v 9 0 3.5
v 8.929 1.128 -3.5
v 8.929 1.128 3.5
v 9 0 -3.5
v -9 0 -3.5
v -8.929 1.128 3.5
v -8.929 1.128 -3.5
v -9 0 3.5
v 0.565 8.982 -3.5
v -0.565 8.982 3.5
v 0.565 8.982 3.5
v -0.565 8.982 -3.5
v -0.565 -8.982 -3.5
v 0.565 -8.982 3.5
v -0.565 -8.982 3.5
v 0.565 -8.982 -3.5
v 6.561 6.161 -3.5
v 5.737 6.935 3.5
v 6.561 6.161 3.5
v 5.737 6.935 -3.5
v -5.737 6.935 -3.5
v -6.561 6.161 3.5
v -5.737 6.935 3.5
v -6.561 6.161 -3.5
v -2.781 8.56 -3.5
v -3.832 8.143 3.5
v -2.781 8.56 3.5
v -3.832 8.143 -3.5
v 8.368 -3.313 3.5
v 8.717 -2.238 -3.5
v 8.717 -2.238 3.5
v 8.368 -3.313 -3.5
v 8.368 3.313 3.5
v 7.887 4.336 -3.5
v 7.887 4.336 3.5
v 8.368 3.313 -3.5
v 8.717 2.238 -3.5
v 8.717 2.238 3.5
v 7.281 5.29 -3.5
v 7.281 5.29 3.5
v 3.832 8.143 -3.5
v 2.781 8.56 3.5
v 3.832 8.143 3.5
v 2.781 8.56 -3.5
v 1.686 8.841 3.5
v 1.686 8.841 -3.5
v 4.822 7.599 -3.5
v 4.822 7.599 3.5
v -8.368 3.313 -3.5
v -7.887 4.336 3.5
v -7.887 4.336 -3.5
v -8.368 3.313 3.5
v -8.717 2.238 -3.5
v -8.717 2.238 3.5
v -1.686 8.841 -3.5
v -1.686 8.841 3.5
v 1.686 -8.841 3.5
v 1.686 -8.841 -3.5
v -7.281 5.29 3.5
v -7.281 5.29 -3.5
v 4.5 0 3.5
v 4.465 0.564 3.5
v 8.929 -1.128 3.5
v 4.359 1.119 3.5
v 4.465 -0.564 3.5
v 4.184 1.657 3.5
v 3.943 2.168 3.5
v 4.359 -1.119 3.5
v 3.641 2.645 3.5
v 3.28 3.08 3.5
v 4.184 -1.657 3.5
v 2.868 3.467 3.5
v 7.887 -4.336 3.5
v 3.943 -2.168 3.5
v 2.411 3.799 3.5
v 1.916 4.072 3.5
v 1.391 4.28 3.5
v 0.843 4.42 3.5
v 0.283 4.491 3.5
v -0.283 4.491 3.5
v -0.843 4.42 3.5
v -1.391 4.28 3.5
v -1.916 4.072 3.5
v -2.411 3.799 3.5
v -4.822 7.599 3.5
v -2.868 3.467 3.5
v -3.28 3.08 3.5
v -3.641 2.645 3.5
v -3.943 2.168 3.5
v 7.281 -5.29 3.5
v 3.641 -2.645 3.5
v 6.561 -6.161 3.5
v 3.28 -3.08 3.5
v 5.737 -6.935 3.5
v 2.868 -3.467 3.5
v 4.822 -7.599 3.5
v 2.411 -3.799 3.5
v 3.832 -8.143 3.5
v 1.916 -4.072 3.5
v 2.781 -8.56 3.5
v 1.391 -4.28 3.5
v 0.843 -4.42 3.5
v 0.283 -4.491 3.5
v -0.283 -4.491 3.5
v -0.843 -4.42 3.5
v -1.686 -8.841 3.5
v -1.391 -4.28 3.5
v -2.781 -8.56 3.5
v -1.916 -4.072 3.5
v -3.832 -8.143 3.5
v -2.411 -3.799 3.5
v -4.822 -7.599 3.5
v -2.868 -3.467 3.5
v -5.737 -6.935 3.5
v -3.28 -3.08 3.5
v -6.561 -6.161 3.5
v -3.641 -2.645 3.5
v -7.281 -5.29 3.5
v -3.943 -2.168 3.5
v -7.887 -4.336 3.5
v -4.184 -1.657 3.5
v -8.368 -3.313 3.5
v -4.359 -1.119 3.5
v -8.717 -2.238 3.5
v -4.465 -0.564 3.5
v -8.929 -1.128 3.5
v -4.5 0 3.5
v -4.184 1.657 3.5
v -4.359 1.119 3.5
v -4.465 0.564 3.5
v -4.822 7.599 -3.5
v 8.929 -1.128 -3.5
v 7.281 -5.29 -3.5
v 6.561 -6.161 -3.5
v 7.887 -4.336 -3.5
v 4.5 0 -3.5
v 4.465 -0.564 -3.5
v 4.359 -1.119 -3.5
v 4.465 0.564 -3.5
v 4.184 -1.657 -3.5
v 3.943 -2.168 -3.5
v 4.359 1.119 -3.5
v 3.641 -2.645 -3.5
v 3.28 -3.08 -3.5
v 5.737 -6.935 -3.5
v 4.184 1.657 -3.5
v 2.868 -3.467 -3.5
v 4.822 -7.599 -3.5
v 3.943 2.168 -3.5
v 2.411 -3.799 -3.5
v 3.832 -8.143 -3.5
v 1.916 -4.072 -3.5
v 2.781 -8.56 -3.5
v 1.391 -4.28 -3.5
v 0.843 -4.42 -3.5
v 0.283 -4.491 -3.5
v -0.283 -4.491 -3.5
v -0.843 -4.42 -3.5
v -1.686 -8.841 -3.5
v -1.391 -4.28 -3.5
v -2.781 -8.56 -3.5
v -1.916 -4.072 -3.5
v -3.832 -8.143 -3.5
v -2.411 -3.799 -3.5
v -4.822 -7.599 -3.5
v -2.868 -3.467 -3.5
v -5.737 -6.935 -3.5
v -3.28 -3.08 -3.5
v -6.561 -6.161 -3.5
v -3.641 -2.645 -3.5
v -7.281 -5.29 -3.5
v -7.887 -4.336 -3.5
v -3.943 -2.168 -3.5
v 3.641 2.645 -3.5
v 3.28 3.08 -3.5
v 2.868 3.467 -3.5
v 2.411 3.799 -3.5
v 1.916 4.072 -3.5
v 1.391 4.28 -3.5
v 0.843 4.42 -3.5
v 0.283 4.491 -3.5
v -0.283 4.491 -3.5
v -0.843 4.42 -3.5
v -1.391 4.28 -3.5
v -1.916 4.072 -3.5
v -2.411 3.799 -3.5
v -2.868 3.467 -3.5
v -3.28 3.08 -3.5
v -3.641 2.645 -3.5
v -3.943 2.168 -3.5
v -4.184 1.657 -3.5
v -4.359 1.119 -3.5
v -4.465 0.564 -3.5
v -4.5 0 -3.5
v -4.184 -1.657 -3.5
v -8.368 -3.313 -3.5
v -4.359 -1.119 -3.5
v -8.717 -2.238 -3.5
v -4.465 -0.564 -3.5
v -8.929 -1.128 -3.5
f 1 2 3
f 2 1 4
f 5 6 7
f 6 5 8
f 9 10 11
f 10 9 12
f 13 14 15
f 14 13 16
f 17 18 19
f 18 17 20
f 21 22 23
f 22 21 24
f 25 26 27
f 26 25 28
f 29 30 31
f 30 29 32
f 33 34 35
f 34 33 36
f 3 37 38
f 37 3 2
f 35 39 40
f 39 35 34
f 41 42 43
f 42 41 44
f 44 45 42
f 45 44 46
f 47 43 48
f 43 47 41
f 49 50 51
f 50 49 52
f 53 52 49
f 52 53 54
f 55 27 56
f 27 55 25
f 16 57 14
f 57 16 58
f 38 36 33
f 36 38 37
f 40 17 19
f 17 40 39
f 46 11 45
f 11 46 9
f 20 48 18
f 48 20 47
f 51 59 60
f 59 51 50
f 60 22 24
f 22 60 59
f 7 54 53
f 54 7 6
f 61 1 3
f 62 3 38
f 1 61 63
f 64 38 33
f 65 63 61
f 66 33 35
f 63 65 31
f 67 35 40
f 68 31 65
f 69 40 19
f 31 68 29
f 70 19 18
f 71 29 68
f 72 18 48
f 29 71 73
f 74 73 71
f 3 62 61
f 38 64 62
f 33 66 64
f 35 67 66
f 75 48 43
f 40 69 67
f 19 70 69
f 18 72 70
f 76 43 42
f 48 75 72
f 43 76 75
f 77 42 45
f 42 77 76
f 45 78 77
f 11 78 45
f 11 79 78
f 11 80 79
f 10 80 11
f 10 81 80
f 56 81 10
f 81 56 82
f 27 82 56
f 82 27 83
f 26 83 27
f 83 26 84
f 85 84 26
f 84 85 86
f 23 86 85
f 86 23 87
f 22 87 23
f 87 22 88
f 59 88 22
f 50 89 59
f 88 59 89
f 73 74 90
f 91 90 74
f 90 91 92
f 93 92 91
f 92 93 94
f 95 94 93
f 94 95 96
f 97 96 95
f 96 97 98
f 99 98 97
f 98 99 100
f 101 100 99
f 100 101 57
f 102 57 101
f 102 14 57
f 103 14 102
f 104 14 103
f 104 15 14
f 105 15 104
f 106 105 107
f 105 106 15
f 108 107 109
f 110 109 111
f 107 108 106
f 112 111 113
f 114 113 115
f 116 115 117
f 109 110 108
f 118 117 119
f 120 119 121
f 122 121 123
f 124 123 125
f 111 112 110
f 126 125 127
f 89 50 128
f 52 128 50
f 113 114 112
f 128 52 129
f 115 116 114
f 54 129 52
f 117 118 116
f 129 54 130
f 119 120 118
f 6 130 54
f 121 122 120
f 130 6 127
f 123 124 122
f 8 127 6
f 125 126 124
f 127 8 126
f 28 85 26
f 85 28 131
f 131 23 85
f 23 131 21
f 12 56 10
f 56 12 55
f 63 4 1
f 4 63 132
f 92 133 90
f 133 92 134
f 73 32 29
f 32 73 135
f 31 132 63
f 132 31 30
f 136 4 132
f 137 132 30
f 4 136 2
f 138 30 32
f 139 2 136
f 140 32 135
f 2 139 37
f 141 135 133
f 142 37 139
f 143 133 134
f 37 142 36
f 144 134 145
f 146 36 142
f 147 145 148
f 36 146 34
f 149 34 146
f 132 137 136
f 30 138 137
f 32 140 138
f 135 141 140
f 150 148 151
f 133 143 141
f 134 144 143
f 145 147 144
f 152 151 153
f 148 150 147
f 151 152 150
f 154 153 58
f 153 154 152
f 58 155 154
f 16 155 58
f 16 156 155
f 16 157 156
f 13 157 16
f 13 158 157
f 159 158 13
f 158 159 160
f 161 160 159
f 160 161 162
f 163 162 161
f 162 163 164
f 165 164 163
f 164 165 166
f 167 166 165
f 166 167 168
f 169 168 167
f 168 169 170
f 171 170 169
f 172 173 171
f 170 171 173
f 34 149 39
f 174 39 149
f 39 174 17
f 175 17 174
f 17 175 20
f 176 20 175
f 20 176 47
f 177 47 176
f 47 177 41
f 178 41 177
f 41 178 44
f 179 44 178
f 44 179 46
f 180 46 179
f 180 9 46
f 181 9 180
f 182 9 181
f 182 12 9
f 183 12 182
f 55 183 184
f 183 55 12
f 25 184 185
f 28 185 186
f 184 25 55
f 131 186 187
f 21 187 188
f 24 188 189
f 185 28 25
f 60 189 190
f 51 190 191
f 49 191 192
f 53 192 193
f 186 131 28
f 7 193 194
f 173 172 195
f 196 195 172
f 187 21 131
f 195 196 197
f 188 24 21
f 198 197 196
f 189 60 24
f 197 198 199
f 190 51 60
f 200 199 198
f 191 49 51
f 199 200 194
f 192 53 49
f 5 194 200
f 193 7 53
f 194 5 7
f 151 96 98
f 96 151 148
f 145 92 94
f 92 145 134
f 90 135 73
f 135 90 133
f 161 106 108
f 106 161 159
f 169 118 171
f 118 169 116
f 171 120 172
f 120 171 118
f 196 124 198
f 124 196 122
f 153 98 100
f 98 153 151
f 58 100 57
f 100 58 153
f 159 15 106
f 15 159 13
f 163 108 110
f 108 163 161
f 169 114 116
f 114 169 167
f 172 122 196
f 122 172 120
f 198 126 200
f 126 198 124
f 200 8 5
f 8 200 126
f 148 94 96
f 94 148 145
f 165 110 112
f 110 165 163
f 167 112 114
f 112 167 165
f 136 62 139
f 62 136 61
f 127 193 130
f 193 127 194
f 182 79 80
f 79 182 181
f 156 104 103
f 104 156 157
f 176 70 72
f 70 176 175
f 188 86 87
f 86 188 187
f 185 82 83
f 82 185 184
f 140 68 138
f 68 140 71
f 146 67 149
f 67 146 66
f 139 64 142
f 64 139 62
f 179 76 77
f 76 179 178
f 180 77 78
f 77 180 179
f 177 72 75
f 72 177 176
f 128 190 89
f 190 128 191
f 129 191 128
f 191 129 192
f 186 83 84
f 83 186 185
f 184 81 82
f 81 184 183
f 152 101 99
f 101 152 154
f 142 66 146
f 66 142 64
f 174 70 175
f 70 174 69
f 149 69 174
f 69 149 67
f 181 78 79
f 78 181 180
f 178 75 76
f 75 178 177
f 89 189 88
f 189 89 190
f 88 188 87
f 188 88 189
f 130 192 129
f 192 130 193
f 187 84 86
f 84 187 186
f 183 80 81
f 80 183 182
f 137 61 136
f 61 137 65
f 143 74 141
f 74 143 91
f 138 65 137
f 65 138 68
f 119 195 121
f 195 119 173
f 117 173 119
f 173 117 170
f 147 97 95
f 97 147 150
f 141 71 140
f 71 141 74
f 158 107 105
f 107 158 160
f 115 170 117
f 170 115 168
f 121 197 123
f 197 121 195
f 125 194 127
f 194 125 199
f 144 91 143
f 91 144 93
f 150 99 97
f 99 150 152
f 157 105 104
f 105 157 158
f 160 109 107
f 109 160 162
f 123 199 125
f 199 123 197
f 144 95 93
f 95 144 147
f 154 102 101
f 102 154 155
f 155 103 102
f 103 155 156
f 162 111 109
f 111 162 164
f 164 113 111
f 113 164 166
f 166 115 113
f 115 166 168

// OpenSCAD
$fn = 50;


difference() {
	union() {
		translate(v = [0, 0, -3.5000000000]) {
			cylinder(h = 7, r = 9.0000000000);
		}
	}
	union() {
		translate(v = [0, 0, -100.0000000000]) {
			cylinder(h = 200, r = 4.5000000000);
		}
	}
}
